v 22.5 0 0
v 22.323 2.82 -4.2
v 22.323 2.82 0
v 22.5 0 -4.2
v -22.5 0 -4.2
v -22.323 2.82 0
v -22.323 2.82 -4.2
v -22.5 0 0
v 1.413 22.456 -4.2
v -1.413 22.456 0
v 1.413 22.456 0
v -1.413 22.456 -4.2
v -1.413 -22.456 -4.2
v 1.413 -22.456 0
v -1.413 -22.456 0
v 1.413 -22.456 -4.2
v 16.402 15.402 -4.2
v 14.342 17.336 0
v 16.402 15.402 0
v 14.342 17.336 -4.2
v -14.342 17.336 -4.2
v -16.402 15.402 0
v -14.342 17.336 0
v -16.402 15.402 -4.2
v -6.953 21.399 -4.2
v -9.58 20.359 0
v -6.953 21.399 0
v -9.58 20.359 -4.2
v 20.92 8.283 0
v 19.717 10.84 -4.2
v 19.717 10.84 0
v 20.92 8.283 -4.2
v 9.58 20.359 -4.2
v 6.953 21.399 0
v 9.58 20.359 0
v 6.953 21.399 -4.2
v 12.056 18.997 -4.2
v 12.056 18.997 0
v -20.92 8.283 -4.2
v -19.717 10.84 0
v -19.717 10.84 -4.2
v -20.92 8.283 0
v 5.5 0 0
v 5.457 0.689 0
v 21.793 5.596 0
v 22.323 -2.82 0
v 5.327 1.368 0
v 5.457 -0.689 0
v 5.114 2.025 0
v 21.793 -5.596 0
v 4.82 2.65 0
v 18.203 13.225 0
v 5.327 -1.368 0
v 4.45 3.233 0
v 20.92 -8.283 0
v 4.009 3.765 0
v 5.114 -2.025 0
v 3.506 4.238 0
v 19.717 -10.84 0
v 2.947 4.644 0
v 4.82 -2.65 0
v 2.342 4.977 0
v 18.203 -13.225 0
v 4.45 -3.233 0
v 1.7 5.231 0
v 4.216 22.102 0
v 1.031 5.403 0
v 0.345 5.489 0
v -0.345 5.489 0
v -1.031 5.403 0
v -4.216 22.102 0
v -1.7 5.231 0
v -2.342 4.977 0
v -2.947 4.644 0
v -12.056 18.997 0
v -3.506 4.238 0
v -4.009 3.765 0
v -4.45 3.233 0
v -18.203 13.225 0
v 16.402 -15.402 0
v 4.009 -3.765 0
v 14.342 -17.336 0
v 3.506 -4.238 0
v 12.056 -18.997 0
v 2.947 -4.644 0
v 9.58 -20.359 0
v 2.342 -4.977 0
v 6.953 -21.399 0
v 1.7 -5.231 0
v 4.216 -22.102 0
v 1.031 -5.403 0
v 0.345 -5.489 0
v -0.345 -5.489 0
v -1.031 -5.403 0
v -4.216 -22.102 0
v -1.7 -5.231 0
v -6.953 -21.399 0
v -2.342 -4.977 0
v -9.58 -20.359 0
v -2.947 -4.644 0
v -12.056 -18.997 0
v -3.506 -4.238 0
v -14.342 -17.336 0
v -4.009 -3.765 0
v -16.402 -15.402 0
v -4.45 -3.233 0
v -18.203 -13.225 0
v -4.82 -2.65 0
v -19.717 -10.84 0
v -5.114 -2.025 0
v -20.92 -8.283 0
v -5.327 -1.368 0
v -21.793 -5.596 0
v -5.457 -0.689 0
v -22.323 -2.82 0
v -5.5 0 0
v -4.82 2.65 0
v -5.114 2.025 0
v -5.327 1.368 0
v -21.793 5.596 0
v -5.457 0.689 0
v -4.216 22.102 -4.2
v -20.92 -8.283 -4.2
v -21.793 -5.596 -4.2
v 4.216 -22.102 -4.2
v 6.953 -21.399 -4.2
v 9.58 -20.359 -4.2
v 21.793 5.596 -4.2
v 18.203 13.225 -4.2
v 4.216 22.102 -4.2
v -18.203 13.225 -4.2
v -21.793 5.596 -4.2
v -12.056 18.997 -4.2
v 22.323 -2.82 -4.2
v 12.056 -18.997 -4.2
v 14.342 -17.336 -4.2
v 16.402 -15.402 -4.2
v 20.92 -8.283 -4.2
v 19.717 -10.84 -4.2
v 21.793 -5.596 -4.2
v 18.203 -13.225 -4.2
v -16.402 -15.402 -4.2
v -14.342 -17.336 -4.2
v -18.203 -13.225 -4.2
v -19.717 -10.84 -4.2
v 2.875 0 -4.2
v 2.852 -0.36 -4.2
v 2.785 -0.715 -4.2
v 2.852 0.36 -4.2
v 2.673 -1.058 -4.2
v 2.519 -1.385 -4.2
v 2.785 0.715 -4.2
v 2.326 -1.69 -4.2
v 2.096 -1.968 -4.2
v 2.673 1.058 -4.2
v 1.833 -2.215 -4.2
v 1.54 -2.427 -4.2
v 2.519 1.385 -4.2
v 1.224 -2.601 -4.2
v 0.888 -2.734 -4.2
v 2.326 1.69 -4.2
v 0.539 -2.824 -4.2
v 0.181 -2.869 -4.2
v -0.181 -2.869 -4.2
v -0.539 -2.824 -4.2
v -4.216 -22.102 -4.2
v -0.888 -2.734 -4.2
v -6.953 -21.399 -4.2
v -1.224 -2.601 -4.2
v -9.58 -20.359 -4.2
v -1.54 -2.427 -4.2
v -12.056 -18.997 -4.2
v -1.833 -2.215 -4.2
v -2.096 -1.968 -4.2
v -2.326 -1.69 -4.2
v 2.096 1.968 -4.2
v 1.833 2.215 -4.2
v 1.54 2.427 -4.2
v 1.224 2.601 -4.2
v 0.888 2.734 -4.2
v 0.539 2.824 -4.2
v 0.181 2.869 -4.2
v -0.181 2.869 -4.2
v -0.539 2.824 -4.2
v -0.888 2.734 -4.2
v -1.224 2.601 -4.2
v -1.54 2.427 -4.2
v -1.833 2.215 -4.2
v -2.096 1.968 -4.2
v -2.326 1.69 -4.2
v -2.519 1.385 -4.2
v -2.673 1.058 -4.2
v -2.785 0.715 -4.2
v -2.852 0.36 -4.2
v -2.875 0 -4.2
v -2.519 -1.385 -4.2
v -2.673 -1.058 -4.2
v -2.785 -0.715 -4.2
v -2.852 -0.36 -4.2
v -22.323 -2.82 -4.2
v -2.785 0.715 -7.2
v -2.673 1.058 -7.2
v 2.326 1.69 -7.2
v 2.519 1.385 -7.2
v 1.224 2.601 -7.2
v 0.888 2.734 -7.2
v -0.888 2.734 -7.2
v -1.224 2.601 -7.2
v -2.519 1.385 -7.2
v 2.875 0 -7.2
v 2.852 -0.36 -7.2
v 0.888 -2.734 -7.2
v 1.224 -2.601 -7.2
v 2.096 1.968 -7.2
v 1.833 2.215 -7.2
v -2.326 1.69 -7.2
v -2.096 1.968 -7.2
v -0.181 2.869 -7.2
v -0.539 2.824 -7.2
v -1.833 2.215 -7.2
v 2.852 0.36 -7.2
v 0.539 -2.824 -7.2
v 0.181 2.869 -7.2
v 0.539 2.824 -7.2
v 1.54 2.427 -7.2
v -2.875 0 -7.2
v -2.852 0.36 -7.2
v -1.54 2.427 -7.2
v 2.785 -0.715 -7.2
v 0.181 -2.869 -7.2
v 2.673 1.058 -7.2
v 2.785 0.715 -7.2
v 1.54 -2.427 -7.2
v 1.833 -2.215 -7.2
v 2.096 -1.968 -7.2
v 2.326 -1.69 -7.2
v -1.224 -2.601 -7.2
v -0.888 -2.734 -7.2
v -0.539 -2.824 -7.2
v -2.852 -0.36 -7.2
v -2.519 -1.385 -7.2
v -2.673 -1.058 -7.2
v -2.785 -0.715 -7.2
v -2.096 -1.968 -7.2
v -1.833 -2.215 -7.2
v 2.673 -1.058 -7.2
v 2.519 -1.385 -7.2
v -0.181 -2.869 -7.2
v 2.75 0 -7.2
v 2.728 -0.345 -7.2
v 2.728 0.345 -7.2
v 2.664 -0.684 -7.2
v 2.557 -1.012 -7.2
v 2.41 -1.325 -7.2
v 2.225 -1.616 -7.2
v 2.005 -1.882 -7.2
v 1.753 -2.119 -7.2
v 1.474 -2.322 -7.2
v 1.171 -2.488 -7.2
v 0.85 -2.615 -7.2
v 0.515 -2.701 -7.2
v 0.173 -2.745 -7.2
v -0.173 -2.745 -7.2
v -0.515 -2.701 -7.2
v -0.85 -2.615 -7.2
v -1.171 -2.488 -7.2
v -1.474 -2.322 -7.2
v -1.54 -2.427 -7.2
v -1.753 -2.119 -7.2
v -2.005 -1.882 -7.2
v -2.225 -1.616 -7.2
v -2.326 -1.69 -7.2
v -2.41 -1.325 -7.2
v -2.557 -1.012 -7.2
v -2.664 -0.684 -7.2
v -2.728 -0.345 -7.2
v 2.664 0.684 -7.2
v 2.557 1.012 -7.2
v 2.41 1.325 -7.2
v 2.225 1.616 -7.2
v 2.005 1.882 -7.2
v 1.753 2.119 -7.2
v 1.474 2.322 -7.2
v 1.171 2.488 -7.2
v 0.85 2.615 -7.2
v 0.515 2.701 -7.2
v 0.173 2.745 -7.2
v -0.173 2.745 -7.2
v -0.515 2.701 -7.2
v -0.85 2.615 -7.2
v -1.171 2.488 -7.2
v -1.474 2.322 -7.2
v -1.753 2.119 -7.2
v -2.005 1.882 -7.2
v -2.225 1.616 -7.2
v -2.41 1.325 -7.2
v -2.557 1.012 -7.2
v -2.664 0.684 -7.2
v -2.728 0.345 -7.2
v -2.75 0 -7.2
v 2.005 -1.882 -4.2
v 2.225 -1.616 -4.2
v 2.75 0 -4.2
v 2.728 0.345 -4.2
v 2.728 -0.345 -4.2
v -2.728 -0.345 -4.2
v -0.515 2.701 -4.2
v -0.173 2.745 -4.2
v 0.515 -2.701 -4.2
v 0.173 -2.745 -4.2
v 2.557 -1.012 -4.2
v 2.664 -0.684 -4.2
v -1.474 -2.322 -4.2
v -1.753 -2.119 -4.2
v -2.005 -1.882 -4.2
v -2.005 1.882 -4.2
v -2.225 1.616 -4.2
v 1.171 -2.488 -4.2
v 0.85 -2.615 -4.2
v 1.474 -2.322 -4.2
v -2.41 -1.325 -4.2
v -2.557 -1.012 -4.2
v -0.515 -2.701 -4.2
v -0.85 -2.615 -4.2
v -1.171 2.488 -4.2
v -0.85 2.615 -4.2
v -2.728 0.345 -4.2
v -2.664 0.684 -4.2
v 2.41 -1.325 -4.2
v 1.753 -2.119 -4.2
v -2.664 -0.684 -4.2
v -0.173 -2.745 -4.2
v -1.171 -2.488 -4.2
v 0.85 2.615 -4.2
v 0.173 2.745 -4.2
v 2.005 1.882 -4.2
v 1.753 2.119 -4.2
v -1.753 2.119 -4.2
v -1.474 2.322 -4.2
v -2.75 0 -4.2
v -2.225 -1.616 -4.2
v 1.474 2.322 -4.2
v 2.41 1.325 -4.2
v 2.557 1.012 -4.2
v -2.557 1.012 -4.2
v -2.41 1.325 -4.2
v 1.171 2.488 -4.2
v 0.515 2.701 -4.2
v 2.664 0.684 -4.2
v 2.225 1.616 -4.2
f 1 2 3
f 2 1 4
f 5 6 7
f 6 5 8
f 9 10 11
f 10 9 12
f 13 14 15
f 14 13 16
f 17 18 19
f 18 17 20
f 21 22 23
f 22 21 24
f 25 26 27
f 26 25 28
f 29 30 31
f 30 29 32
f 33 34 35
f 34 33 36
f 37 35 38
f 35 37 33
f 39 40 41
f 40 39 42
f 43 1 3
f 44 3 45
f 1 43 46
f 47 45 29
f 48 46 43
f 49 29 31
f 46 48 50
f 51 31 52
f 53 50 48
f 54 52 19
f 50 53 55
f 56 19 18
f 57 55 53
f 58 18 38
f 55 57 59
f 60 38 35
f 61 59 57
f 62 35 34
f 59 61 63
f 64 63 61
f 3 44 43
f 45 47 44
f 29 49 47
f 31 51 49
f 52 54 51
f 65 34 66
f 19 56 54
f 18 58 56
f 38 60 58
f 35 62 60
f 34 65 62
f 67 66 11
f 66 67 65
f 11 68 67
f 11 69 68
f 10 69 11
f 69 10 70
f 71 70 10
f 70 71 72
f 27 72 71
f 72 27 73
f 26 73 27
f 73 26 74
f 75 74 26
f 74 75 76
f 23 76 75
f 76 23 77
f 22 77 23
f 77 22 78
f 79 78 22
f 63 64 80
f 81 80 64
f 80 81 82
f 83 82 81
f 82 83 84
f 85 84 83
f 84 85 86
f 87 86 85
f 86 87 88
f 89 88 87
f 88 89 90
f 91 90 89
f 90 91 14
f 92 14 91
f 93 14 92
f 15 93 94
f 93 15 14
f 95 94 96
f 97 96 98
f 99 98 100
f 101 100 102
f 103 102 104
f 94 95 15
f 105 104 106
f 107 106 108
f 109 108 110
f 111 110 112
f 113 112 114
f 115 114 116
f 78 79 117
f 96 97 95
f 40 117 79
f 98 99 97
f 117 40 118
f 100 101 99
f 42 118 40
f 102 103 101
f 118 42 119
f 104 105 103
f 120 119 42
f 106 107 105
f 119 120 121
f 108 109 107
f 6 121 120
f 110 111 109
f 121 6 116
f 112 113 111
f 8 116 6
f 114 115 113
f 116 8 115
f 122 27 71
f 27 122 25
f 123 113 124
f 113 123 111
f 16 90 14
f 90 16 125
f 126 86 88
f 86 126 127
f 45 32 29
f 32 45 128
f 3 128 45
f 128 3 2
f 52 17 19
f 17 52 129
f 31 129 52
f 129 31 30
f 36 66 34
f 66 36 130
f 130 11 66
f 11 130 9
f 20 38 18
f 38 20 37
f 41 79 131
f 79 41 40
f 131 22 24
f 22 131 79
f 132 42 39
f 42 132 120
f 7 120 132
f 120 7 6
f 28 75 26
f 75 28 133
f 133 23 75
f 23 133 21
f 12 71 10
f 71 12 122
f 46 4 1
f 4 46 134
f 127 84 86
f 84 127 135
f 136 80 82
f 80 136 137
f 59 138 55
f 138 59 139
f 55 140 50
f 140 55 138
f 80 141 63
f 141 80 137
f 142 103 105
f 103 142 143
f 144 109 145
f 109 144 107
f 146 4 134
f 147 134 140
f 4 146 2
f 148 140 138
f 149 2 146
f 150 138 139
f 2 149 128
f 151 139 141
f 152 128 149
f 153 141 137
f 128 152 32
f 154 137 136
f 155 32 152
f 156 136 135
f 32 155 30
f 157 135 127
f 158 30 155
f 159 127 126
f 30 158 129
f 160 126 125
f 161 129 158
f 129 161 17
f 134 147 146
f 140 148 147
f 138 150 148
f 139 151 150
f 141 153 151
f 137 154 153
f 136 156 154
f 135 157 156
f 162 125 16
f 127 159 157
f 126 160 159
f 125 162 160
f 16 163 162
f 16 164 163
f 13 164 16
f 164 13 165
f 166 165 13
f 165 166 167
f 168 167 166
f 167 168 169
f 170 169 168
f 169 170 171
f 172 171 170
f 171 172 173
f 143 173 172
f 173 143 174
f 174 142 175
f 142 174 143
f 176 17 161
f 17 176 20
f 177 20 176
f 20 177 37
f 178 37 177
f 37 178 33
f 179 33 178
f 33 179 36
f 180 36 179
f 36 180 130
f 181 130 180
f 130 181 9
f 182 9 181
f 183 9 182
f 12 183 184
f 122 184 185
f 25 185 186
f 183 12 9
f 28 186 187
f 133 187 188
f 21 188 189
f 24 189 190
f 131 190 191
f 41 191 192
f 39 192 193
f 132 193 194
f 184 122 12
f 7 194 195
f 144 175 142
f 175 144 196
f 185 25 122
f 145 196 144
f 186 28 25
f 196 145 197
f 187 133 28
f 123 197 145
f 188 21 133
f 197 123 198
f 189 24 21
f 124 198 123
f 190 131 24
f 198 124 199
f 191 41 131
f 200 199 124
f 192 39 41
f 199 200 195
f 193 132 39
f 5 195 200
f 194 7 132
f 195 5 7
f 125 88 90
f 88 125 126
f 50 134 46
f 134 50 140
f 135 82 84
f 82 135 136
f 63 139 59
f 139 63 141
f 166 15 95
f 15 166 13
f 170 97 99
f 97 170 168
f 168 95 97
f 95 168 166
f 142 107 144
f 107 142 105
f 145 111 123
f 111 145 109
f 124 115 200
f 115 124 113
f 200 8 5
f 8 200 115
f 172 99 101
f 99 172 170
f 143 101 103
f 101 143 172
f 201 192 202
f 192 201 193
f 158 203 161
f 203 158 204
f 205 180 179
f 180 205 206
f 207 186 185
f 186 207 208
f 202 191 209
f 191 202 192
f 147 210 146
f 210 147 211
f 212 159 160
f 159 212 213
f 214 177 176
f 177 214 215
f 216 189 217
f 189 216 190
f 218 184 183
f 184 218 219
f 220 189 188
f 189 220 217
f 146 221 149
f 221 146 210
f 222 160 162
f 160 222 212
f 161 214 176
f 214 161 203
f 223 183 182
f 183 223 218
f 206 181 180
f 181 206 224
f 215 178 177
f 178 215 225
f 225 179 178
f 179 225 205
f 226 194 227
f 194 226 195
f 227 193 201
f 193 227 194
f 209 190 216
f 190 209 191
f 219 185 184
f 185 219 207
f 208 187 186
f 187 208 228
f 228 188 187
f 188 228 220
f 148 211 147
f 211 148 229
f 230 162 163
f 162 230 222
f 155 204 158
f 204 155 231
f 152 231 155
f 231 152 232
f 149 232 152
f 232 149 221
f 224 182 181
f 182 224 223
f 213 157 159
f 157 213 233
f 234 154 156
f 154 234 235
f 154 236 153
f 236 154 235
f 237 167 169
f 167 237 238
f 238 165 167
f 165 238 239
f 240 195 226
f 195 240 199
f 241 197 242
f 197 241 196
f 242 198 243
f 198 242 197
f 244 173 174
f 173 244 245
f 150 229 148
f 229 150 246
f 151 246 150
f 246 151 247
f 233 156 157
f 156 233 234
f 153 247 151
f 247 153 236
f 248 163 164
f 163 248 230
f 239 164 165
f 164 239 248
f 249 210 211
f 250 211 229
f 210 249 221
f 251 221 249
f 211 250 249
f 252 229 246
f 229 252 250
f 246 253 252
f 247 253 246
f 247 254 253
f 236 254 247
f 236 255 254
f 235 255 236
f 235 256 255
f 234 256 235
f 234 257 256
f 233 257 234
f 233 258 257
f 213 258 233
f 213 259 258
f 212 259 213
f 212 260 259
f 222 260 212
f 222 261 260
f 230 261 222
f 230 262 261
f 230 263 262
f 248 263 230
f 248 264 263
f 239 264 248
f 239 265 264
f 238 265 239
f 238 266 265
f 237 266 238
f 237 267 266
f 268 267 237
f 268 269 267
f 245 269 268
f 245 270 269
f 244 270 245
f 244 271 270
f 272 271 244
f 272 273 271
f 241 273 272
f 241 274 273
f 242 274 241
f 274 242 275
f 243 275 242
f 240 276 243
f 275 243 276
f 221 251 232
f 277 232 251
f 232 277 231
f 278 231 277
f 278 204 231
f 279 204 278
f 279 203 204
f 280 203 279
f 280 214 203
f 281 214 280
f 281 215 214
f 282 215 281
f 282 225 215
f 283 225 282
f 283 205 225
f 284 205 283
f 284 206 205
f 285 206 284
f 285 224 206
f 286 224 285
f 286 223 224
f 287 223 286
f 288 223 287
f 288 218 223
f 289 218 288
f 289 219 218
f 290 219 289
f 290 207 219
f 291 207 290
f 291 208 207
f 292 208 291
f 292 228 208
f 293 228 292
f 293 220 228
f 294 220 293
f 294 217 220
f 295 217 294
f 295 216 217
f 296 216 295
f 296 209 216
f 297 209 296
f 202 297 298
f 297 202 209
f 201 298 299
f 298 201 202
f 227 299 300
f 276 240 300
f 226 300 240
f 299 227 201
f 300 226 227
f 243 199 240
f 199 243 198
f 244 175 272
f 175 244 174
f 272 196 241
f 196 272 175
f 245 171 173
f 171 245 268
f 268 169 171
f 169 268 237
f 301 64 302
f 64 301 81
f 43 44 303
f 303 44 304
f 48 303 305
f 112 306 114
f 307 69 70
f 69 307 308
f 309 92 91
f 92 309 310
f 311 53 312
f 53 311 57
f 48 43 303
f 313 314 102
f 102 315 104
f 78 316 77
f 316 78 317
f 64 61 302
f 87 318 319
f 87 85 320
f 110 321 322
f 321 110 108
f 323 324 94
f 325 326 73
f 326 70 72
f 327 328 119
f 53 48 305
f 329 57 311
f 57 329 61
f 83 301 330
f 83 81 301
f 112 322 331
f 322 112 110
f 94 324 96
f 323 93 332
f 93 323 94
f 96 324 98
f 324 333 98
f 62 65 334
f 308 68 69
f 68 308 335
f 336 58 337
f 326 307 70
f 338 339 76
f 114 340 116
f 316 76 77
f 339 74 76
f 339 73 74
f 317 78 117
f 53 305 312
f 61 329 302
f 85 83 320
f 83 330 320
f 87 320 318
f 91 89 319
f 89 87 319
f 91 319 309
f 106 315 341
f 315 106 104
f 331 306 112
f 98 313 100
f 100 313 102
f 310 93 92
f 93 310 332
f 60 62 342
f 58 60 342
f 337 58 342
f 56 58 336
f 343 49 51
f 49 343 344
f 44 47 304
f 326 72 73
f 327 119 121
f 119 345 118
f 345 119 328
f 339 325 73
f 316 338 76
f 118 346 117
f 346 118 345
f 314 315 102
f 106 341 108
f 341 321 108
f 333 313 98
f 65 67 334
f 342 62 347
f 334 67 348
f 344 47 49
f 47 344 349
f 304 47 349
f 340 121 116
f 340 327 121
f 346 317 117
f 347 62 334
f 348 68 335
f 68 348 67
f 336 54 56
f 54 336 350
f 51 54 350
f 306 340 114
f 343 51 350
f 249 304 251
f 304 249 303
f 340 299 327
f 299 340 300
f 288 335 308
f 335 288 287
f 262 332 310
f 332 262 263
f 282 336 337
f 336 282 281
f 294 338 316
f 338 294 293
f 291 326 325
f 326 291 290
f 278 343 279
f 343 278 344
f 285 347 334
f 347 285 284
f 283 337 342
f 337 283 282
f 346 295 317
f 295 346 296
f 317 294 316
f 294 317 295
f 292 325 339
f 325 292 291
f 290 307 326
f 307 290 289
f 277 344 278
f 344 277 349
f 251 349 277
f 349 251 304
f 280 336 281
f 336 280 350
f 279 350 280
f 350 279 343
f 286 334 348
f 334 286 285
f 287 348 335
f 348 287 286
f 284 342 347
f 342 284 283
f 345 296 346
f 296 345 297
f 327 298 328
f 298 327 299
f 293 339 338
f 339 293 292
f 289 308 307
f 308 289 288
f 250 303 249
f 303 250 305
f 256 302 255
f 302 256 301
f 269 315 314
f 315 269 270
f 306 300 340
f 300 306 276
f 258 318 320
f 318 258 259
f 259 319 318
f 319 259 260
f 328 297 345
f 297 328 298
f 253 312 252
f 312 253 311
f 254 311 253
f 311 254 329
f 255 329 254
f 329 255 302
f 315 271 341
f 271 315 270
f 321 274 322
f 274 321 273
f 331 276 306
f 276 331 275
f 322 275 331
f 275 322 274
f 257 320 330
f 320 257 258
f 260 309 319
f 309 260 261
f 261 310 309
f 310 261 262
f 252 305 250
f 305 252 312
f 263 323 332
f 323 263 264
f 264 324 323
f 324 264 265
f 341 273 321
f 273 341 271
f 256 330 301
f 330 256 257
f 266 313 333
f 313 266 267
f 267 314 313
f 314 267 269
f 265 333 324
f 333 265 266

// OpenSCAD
$fn = 50;


difference() {
	union() {
		translate(v = [0, 0, -4.2000000000]) {
			cylinder(h = 4.2000000000, r = 22.5000000000);
		}
		translate(v = [0, 0, -7.2000000000]) {
			cylinder(h = 7.2000000000, r = 2.8750000000);
		}
	}
	union() {
		translate(v = [0, 0, 0]) {
			rotate(a = [0, 0, 0]) {
				difference() {
					union() {
						translate(v = [0, 0, -7.2000000000]) {
							cylinder(h = 7.2000000000, r = 2.2500000000);
						}
						translate(v = [0, 0, -4.2000000000]) {
							cylinder(h = 4.2000000000, r1 = 2.7500000000, r2 = 5.5000000000);
						}
						translate(v = [0, 0, -7.2000000000]) {
							cylinder(h = 7.2000000000, r = 2.7500000000);
						}
						translate(v = [0, 0, -7.2000000000]) {
							cylinder(h = 7.2000000000, r = 2.2500000000);
						}
					}
					union();
				}
			}
		}
	}
}
